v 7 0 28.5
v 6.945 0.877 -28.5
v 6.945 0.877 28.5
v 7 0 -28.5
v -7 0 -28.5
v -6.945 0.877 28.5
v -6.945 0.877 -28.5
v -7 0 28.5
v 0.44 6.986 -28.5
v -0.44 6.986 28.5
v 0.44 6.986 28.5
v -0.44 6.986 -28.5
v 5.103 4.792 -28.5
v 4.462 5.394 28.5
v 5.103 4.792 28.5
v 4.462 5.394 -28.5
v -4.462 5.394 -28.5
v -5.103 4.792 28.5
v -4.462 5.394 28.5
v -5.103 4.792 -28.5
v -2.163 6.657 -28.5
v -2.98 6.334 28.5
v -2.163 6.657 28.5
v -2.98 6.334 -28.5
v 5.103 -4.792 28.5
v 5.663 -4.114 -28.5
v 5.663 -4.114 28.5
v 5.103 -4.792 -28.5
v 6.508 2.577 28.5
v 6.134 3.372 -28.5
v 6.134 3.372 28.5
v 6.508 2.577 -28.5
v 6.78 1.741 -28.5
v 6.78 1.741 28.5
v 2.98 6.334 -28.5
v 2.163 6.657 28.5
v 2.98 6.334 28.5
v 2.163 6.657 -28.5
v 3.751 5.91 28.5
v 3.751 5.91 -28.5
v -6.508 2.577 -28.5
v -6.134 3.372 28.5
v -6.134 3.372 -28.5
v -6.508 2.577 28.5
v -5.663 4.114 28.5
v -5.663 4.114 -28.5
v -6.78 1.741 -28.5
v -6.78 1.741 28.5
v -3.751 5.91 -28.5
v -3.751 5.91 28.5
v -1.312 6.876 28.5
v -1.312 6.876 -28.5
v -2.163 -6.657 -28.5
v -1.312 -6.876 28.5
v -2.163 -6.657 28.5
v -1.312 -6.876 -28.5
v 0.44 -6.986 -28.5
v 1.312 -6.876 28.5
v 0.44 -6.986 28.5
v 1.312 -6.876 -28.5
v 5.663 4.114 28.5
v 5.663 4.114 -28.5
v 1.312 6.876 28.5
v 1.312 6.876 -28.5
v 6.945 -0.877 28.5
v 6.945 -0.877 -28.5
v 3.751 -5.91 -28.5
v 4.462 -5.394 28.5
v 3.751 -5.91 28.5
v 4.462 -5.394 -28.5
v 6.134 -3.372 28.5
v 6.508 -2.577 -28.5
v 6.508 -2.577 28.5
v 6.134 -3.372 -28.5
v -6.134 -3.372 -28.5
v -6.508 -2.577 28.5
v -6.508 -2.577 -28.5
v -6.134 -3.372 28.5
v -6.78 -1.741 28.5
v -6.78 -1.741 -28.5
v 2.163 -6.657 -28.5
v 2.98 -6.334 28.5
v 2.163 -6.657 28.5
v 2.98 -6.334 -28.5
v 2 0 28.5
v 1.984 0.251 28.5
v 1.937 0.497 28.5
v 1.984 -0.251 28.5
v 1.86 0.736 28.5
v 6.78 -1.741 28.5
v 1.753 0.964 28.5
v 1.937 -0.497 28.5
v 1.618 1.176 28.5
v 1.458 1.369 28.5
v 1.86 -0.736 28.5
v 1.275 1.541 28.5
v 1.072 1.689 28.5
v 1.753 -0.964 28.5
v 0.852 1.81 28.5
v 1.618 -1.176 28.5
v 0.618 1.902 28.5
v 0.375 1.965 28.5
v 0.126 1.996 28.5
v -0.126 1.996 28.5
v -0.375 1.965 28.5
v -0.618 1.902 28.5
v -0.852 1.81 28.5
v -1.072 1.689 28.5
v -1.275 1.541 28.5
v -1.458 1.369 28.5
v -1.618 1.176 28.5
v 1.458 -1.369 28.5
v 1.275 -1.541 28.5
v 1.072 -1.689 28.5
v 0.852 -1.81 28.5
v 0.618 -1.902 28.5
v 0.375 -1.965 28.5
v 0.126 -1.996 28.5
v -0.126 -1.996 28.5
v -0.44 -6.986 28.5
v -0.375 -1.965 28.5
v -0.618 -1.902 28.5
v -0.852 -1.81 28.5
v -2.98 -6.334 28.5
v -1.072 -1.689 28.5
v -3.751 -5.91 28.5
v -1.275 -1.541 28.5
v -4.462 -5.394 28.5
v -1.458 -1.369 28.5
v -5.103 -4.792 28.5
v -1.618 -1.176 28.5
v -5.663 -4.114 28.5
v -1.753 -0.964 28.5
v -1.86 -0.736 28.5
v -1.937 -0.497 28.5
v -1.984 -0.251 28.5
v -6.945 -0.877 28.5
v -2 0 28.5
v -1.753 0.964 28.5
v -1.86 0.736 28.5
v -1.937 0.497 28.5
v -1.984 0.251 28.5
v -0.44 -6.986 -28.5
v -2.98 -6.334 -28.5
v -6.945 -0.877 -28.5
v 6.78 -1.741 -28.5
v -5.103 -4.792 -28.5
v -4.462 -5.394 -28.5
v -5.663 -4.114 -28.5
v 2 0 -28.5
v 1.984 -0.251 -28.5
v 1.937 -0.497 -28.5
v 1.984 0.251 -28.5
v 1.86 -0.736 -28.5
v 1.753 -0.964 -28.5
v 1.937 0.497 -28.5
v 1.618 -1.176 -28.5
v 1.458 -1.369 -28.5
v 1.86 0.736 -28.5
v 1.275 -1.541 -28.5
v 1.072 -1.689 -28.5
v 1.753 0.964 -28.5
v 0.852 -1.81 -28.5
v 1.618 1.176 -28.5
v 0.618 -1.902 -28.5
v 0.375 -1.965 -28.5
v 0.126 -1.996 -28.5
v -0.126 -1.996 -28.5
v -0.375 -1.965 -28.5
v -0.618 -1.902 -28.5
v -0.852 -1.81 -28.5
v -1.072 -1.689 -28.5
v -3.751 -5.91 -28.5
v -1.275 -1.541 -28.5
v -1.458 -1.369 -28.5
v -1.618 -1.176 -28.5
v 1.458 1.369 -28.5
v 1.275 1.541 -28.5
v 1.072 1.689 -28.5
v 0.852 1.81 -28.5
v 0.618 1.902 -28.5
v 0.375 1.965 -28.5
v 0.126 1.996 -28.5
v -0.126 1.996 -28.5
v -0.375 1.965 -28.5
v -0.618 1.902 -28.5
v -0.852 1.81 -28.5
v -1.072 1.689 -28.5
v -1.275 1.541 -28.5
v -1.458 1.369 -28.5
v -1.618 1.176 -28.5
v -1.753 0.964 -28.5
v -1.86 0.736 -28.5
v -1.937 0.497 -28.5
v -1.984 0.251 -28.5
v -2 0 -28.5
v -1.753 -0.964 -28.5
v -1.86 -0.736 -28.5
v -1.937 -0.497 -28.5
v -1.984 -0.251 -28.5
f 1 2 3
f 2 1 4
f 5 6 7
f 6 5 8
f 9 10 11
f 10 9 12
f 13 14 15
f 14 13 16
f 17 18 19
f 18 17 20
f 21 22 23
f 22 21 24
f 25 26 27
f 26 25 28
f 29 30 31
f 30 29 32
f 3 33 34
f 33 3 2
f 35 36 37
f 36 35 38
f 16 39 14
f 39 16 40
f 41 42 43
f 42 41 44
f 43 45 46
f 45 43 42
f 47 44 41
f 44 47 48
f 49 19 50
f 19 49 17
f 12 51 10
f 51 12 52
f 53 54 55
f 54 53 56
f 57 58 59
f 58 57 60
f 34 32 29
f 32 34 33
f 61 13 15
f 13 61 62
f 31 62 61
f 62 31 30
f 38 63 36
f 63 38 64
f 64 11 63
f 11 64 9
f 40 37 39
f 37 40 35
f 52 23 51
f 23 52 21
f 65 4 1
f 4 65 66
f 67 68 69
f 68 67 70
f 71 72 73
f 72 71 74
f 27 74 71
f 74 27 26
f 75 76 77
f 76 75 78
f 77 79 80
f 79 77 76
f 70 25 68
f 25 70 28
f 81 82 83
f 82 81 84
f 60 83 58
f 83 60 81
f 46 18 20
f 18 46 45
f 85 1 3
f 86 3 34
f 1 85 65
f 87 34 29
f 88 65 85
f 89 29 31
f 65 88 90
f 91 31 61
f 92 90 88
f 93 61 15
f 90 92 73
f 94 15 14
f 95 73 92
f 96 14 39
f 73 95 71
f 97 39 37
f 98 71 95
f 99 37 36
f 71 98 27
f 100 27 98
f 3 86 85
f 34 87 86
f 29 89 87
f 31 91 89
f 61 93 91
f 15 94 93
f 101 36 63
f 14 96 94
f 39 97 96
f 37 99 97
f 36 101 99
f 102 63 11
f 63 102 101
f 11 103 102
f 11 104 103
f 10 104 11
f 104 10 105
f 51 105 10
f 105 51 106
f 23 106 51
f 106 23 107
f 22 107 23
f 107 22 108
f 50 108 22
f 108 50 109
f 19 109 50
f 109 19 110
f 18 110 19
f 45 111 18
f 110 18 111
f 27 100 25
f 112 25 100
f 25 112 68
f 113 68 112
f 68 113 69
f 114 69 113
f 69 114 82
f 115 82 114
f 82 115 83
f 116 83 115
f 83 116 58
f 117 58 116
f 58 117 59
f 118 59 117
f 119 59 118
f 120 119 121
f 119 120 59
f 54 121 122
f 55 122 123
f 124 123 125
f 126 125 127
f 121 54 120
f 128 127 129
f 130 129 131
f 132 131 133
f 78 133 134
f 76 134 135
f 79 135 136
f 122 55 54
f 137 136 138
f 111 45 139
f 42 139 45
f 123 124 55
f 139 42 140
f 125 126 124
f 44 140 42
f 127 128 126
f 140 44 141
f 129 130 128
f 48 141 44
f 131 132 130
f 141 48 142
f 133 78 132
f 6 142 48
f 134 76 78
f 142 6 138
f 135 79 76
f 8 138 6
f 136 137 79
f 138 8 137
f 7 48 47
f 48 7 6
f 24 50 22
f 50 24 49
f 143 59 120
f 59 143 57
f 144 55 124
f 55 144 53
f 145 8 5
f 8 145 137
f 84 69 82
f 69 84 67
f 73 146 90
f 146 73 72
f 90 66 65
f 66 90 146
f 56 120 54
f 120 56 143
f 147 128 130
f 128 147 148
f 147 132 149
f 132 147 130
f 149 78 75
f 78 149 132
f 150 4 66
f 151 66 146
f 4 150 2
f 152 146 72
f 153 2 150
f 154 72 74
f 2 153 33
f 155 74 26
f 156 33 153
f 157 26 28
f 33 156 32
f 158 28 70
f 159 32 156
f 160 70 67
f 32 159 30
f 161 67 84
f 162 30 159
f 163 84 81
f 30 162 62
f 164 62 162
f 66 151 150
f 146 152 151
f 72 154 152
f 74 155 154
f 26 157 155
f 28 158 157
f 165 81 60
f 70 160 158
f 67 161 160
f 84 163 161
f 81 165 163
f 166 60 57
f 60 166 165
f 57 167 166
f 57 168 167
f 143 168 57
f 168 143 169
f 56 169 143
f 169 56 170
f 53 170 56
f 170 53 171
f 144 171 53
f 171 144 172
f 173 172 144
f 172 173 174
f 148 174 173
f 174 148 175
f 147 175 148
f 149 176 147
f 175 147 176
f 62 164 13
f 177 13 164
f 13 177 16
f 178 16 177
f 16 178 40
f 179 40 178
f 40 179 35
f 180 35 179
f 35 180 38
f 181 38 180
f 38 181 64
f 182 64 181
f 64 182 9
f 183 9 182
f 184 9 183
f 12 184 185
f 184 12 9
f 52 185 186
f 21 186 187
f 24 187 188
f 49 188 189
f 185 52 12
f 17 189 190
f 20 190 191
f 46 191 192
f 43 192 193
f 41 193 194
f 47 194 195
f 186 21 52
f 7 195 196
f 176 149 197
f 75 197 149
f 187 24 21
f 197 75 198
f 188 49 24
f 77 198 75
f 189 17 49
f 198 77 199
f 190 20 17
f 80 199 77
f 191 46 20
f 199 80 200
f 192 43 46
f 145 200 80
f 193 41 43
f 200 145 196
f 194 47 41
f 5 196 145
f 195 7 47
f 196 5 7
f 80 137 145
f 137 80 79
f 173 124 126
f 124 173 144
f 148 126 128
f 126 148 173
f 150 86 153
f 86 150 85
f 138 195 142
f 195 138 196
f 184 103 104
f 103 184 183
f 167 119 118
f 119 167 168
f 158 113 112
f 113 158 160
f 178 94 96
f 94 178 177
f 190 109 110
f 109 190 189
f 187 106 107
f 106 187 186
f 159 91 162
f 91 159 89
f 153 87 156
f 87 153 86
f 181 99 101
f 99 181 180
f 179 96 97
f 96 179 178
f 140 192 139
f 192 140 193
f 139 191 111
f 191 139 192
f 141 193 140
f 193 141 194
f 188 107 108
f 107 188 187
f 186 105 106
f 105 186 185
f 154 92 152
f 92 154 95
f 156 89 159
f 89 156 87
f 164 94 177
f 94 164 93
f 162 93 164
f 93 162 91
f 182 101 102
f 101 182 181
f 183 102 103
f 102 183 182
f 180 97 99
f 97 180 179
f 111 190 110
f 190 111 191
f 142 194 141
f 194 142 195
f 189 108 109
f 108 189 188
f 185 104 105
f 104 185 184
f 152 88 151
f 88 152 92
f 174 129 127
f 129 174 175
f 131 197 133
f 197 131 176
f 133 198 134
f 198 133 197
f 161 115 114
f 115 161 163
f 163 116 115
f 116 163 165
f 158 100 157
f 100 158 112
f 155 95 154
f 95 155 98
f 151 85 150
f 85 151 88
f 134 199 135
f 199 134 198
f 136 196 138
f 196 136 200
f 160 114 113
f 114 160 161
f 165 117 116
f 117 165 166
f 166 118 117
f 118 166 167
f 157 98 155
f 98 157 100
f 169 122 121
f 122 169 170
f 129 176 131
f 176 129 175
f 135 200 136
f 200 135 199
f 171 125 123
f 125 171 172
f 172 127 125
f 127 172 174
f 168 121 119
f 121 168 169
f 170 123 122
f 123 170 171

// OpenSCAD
$fn = 50;


difference() {
	union() {
		translate(v = [0, 0, -28.5000000000]) {
			cylinder(h = 57, r = 7.0000000000);
		}
	}
	union() {
		translate(v = [0, 0, -100.0000000000]) {
			cylinder(h = 200, r = 2.0000000000);
		}
	}
}
